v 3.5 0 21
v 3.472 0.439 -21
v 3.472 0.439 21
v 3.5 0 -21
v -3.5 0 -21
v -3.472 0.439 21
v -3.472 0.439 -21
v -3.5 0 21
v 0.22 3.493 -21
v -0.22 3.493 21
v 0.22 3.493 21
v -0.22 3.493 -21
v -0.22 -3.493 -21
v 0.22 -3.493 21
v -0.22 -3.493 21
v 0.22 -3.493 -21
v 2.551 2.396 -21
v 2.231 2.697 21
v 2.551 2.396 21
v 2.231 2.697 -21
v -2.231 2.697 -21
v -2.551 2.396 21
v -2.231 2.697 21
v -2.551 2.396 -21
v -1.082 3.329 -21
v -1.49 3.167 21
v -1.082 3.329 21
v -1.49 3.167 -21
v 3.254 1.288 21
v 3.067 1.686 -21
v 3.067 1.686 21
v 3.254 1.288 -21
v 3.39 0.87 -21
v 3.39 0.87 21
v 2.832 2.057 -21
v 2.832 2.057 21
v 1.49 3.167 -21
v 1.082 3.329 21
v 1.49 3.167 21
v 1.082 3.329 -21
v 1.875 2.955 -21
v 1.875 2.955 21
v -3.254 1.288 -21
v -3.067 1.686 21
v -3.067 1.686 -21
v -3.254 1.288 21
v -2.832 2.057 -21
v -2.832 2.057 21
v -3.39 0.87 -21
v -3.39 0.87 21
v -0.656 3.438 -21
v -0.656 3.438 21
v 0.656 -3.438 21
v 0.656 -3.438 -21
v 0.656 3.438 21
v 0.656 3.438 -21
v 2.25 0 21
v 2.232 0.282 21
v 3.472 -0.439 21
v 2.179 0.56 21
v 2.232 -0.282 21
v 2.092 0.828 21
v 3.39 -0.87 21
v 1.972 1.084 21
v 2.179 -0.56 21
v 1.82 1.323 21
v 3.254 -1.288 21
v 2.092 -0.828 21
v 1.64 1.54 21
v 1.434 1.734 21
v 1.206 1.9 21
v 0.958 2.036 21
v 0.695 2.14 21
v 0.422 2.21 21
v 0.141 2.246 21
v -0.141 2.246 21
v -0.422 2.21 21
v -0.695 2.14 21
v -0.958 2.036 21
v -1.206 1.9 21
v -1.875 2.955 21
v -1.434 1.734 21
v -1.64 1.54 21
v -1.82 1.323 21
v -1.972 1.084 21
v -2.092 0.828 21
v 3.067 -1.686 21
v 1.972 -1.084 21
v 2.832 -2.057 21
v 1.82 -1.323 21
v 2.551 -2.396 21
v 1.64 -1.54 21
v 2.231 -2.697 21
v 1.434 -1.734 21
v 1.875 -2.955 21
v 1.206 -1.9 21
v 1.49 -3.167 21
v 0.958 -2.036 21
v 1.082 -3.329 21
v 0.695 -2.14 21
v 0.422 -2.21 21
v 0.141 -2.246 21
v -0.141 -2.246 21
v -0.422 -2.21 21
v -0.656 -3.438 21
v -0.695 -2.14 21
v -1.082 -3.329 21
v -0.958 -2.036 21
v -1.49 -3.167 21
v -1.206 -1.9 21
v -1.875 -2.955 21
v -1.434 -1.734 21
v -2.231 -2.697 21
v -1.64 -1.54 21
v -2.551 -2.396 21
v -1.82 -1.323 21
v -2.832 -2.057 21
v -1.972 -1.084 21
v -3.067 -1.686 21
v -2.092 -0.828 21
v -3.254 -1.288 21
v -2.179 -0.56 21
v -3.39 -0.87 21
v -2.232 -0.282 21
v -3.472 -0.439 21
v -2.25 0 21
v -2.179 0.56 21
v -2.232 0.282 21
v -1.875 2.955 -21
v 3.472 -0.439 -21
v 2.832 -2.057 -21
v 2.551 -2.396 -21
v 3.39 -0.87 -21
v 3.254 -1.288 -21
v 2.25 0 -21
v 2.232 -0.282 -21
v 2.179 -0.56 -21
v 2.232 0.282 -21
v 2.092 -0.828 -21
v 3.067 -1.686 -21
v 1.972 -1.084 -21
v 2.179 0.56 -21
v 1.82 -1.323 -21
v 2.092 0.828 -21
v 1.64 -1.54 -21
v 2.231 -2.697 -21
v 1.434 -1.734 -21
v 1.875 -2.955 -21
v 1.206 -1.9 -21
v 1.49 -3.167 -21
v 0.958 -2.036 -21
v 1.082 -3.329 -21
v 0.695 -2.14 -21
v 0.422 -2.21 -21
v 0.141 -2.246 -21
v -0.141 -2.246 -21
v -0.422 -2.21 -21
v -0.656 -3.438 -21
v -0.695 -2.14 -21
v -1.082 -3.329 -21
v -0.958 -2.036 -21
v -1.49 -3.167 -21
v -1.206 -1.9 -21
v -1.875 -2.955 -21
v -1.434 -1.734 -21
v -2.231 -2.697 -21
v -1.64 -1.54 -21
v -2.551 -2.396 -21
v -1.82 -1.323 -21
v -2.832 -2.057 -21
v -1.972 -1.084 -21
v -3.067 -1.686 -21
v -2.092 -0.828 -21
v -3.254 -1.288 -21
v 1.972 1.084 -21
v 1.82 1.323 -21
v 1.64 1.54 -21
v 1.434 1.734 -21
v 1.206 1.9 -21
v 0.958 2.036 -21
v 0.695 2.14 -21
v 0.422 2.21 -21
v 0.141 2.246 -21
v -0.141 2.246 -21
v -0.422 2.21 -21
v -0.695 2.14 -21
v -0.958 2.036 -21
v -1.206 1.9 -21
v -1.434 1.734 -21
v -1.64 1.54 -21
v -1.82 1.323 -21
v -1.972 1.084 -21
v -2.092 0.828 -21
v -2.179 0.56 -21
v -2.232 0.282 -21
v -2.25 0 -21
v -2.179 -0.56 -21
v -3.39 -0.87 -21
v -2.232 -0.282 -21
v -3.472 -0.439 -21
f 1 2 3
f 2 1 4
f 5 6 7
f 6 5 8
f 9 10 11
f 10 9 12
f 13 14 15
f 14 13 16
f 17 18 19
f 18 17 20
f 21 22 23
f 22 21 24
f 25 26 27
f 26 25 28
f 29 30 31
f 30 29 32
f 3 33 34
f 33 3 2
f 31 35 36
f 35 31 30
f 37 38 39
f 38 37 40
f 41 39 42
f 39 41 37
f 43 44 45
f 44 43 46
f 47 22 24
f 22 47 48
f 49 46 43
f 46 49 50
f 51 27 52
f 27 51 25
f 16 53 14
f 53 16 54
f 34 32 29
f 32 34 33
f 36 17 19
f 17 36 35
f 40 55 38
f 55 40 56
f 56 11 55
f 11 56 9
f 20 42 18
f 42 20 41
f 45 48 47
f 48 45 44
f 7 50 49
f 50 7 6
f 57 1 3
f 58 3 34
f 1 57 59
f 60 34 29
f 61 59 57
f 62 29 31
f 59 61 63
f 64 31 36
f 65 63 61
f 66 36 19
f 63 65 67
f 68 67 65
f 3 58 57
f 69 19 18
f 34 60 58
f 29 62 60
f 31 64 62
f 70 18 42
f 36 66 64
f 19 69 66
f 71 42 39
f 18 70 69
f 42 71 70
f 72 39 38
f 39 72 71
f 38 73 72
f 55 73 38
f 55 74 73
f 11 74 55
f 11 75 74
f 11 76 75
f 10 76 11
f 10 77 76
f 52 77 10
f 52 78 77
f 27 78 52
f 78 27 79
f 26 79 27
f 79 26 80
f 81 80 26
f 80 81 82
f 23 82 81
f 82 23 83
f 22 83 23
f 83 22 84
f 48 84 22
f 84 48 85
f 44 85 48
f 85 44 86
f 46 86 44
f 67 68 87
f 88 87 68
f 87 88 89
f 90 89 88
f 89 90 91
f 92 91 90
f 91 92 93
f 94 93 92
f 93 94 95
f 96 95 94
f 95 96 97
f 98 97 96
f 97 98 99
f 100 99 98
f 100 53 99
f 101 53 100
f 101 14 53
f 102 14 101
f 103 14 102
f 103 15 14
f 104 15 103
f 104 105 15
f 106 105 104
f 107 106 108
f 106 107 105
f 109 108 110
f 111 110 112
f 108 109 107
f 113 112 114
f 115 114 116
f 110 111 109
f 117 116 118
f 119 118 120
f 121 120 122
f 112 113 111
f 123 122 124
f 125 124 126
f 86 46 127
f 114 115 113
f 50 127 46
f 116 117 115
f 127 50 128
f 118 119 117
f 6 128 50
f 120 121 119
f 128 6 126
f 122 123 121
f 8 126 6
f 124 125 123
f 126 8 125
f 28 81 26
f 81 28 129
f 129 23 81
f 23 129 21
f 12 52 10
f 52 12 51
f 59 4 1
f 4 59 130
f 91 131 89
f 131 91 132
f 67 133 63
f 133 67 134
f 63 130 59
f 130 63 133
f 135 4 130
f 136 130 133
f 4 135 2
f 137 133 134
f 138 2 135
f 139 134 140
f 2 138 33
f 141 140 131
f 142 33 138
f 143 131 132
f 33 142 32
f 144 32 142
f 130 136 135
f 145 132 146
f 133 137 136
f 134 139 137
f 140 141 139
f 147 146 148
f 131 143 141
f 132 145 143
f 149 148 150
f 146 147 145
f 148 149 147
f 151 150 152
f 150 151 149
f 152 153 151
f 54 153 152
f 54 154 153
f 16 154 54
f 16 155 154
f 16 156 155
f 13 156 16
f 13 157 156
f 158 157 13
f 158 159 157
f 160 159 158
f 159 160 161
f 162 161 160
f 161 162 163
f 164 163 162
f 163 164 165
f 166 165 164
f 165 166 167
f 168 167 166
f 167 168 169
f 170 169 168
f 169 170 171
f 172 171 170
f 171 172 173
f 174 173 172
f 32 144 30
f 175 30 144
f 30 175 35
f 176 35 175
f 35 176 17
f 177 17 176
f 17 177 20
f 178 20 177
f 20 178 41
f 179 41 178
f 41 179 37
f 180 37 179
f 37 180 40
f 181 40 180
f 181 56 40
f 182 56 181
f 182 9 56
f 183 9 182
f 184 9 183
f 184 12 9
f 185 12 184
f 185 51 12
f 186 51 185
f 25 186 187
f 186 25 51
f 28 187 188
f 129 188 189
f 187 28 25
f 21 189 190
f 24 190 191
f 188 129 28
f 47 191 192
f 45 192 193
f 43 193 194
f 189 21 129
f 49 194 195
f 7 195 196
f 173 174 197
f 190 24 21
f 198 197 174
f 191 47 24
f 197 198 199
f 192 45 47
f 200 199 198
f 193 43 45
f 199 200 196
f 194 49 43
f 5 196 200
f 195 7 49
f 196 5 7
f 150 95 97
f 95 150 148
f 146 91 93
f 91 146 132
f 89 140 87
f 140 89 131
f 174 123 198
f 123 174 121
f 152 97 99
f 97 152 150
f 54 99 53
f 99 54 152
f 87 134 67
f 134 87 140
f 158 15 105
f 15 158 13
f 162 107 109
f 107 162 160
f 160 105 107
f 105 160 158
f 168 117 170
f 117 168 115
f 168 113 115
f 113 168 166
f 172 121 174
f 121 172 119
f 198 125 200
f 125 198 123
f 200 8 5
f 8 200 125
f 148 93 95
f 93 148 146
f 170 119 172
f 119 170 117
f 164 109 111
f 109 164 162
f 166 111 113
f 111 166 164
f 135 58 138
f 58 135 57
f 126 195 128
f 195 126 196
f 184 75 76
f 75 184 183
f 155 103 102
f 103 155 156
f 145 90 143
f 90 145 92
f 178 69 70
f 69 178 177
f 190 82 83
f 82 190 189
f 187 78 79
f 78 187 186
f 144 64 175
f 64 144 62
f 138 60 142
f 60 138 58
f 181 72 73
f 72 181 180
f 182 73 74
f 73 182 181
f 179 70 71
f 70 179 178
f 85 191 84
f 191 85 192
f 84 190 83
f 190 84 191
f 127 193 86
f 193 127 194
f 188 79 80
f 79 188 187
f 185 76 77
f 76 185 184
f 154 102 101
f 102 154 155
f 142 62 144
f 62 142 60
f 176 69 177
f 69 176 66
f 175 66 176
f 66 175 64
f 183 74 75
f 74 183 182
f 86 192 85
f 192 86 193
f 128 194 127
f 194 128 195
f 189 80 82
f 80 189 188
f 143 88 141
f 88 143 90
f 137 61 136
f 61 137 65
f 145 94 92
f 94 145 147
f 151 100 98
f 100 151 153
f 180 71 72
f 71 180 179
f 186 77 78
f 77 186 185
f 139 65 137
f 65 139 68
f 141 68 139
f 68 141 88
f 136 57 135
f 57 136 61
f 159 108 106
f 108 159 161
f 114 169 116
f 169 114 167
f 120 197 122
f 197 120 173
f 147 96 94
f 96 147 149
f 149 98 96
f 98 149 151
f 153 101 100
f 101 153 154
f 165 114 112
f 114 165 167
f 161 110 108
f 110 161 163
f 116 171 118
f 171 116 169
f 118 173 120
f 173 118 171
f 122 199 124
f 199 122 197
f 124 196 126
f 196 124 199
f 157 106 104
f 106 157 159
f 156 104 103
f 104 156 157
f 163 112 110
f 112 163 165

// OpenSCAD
$fn = 50;


difference() {
	union() {
		translate(v = [0, 0, -21.0000000000]) {
			cylinder(h = 42, r = 3.5000000000);
		}
	}
	union() {
		translate(v = [0, 0, -100.0000000000]) {
			cylinder(h = 200, r = 2.2500000000);
		}
	}
}
